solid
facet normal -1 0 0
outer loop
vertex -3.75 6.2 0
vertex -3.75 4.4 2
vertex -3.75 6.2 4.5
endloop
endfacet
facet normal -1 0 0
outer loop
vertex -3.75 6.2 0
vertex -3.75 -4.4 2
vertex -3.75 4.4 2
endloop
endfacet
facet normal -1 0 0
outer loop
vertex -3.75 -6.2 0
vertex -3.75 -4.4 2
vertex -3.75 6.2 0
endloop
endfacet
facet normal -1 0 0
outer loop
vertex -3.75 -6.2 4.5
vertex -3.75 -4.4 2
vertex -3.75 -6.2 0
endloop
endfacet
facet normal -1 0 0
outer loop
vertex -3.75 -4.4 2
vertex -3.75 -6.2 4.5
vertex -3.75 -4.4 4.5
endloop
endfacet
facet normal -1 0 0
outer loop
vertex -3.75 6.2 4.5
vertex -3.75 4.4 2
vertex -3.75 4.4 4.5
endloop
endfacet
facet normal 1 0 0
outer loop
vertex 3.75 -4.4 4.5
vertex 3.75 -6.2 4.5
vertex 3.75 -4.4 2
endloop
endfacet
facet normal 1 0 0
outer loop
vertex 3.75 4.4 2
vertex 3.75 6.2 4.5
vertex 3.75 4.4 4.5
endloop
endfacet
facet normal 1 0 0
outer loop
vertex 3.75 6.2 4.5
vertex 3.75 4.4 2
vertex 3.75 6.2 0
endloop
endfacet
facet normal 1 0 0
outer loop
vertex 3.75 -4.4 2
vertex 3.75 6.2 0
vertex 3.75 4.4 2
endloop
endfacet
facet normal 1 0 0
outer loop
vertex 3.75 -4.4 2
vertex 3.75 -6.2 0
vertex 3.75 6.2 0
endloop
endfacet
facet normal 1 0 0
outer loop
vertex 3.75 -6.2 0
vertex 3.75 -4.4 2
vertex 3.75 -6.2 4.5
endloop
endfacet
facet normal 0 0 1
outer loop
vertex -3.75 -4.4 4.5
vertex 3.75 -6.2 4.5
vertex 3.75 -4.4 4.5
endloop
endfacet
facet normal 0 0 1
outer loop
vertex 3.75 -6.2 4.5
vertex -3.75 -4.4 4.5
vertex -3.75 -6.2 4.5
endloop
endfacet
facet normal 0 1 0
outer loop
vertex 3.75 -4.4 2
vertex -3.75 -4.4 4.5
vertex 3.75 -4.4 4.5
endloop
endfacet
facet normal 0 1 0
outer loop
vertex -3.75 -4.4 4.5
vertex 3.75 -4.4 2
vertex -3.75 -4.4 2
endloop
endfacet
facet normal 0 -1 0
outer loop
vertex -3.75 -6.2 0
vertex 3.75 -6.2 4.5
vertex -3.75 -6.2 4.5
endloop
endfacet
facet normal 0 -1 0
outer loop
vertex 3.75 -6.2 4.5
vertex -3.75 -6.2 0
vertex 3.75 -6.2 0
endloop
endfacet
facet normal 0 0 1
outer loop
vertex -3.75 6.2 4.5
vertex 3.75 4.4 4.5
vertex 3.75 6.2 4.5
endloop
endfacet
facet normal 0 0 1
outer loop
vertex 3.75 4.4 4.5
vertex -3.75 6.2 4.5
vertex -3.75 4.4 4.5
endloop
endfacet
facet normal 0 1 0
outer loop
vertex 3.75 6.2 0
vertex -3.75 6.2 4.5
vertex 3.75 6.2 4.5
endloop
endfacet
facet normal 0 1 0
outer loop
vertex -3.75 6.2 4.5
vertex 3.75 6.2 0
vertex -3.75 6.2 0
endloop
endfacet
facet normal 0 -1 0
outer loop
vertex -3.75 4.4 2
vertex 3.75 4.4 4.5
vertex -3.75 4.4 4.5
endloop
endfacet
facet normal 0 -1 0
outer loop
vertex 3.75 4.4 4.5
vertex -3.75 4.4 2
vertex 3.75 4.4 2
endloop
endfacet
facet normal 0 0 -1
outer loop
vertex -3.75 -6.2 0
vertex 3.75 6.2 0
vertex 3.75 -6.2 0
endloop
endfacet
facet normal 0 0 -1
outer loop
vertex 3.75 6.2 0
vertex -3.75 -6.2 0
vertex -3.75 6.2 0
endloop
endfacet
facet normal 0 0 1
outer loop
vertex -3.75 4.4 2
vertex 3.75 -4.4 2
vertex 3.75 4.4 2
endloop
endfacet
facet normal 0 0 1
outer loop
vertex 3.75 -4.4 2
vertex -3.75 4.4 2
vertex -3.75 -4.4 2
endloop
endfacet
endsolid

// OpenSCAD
// Medify - Magnet pocket press-fit cover 3

$fn = 60;

cover_w = 12.4;
cover_d = 7.5;
cover_t = 2;

wing_t = 1.8;
wing_press = 0;

wing_total_depth = 4;

module top_cover() {

    translate([-cover_d/2, -cover_w/2, 0])
        cube([cover_d, cover_w, cover_t]);
}

module side_wings() {

    translate([-cover_d/2, cover_w/2 - wing_t + wing_press, -2.5])
        cube([cover_d, wing_t, wing_total_depth]);

    translate([-cover_d/2, -cover_w/2 - wing_press, -2.5])
        cube([cover_d, wing_t, wing_total_depth]);
}

module MagnetPocketCover3() {

    top_cover();

    side_wings();
}

rotate([180, 0, 0])
    translate([0, 0, -2])
        MagnetPocketCover3();
